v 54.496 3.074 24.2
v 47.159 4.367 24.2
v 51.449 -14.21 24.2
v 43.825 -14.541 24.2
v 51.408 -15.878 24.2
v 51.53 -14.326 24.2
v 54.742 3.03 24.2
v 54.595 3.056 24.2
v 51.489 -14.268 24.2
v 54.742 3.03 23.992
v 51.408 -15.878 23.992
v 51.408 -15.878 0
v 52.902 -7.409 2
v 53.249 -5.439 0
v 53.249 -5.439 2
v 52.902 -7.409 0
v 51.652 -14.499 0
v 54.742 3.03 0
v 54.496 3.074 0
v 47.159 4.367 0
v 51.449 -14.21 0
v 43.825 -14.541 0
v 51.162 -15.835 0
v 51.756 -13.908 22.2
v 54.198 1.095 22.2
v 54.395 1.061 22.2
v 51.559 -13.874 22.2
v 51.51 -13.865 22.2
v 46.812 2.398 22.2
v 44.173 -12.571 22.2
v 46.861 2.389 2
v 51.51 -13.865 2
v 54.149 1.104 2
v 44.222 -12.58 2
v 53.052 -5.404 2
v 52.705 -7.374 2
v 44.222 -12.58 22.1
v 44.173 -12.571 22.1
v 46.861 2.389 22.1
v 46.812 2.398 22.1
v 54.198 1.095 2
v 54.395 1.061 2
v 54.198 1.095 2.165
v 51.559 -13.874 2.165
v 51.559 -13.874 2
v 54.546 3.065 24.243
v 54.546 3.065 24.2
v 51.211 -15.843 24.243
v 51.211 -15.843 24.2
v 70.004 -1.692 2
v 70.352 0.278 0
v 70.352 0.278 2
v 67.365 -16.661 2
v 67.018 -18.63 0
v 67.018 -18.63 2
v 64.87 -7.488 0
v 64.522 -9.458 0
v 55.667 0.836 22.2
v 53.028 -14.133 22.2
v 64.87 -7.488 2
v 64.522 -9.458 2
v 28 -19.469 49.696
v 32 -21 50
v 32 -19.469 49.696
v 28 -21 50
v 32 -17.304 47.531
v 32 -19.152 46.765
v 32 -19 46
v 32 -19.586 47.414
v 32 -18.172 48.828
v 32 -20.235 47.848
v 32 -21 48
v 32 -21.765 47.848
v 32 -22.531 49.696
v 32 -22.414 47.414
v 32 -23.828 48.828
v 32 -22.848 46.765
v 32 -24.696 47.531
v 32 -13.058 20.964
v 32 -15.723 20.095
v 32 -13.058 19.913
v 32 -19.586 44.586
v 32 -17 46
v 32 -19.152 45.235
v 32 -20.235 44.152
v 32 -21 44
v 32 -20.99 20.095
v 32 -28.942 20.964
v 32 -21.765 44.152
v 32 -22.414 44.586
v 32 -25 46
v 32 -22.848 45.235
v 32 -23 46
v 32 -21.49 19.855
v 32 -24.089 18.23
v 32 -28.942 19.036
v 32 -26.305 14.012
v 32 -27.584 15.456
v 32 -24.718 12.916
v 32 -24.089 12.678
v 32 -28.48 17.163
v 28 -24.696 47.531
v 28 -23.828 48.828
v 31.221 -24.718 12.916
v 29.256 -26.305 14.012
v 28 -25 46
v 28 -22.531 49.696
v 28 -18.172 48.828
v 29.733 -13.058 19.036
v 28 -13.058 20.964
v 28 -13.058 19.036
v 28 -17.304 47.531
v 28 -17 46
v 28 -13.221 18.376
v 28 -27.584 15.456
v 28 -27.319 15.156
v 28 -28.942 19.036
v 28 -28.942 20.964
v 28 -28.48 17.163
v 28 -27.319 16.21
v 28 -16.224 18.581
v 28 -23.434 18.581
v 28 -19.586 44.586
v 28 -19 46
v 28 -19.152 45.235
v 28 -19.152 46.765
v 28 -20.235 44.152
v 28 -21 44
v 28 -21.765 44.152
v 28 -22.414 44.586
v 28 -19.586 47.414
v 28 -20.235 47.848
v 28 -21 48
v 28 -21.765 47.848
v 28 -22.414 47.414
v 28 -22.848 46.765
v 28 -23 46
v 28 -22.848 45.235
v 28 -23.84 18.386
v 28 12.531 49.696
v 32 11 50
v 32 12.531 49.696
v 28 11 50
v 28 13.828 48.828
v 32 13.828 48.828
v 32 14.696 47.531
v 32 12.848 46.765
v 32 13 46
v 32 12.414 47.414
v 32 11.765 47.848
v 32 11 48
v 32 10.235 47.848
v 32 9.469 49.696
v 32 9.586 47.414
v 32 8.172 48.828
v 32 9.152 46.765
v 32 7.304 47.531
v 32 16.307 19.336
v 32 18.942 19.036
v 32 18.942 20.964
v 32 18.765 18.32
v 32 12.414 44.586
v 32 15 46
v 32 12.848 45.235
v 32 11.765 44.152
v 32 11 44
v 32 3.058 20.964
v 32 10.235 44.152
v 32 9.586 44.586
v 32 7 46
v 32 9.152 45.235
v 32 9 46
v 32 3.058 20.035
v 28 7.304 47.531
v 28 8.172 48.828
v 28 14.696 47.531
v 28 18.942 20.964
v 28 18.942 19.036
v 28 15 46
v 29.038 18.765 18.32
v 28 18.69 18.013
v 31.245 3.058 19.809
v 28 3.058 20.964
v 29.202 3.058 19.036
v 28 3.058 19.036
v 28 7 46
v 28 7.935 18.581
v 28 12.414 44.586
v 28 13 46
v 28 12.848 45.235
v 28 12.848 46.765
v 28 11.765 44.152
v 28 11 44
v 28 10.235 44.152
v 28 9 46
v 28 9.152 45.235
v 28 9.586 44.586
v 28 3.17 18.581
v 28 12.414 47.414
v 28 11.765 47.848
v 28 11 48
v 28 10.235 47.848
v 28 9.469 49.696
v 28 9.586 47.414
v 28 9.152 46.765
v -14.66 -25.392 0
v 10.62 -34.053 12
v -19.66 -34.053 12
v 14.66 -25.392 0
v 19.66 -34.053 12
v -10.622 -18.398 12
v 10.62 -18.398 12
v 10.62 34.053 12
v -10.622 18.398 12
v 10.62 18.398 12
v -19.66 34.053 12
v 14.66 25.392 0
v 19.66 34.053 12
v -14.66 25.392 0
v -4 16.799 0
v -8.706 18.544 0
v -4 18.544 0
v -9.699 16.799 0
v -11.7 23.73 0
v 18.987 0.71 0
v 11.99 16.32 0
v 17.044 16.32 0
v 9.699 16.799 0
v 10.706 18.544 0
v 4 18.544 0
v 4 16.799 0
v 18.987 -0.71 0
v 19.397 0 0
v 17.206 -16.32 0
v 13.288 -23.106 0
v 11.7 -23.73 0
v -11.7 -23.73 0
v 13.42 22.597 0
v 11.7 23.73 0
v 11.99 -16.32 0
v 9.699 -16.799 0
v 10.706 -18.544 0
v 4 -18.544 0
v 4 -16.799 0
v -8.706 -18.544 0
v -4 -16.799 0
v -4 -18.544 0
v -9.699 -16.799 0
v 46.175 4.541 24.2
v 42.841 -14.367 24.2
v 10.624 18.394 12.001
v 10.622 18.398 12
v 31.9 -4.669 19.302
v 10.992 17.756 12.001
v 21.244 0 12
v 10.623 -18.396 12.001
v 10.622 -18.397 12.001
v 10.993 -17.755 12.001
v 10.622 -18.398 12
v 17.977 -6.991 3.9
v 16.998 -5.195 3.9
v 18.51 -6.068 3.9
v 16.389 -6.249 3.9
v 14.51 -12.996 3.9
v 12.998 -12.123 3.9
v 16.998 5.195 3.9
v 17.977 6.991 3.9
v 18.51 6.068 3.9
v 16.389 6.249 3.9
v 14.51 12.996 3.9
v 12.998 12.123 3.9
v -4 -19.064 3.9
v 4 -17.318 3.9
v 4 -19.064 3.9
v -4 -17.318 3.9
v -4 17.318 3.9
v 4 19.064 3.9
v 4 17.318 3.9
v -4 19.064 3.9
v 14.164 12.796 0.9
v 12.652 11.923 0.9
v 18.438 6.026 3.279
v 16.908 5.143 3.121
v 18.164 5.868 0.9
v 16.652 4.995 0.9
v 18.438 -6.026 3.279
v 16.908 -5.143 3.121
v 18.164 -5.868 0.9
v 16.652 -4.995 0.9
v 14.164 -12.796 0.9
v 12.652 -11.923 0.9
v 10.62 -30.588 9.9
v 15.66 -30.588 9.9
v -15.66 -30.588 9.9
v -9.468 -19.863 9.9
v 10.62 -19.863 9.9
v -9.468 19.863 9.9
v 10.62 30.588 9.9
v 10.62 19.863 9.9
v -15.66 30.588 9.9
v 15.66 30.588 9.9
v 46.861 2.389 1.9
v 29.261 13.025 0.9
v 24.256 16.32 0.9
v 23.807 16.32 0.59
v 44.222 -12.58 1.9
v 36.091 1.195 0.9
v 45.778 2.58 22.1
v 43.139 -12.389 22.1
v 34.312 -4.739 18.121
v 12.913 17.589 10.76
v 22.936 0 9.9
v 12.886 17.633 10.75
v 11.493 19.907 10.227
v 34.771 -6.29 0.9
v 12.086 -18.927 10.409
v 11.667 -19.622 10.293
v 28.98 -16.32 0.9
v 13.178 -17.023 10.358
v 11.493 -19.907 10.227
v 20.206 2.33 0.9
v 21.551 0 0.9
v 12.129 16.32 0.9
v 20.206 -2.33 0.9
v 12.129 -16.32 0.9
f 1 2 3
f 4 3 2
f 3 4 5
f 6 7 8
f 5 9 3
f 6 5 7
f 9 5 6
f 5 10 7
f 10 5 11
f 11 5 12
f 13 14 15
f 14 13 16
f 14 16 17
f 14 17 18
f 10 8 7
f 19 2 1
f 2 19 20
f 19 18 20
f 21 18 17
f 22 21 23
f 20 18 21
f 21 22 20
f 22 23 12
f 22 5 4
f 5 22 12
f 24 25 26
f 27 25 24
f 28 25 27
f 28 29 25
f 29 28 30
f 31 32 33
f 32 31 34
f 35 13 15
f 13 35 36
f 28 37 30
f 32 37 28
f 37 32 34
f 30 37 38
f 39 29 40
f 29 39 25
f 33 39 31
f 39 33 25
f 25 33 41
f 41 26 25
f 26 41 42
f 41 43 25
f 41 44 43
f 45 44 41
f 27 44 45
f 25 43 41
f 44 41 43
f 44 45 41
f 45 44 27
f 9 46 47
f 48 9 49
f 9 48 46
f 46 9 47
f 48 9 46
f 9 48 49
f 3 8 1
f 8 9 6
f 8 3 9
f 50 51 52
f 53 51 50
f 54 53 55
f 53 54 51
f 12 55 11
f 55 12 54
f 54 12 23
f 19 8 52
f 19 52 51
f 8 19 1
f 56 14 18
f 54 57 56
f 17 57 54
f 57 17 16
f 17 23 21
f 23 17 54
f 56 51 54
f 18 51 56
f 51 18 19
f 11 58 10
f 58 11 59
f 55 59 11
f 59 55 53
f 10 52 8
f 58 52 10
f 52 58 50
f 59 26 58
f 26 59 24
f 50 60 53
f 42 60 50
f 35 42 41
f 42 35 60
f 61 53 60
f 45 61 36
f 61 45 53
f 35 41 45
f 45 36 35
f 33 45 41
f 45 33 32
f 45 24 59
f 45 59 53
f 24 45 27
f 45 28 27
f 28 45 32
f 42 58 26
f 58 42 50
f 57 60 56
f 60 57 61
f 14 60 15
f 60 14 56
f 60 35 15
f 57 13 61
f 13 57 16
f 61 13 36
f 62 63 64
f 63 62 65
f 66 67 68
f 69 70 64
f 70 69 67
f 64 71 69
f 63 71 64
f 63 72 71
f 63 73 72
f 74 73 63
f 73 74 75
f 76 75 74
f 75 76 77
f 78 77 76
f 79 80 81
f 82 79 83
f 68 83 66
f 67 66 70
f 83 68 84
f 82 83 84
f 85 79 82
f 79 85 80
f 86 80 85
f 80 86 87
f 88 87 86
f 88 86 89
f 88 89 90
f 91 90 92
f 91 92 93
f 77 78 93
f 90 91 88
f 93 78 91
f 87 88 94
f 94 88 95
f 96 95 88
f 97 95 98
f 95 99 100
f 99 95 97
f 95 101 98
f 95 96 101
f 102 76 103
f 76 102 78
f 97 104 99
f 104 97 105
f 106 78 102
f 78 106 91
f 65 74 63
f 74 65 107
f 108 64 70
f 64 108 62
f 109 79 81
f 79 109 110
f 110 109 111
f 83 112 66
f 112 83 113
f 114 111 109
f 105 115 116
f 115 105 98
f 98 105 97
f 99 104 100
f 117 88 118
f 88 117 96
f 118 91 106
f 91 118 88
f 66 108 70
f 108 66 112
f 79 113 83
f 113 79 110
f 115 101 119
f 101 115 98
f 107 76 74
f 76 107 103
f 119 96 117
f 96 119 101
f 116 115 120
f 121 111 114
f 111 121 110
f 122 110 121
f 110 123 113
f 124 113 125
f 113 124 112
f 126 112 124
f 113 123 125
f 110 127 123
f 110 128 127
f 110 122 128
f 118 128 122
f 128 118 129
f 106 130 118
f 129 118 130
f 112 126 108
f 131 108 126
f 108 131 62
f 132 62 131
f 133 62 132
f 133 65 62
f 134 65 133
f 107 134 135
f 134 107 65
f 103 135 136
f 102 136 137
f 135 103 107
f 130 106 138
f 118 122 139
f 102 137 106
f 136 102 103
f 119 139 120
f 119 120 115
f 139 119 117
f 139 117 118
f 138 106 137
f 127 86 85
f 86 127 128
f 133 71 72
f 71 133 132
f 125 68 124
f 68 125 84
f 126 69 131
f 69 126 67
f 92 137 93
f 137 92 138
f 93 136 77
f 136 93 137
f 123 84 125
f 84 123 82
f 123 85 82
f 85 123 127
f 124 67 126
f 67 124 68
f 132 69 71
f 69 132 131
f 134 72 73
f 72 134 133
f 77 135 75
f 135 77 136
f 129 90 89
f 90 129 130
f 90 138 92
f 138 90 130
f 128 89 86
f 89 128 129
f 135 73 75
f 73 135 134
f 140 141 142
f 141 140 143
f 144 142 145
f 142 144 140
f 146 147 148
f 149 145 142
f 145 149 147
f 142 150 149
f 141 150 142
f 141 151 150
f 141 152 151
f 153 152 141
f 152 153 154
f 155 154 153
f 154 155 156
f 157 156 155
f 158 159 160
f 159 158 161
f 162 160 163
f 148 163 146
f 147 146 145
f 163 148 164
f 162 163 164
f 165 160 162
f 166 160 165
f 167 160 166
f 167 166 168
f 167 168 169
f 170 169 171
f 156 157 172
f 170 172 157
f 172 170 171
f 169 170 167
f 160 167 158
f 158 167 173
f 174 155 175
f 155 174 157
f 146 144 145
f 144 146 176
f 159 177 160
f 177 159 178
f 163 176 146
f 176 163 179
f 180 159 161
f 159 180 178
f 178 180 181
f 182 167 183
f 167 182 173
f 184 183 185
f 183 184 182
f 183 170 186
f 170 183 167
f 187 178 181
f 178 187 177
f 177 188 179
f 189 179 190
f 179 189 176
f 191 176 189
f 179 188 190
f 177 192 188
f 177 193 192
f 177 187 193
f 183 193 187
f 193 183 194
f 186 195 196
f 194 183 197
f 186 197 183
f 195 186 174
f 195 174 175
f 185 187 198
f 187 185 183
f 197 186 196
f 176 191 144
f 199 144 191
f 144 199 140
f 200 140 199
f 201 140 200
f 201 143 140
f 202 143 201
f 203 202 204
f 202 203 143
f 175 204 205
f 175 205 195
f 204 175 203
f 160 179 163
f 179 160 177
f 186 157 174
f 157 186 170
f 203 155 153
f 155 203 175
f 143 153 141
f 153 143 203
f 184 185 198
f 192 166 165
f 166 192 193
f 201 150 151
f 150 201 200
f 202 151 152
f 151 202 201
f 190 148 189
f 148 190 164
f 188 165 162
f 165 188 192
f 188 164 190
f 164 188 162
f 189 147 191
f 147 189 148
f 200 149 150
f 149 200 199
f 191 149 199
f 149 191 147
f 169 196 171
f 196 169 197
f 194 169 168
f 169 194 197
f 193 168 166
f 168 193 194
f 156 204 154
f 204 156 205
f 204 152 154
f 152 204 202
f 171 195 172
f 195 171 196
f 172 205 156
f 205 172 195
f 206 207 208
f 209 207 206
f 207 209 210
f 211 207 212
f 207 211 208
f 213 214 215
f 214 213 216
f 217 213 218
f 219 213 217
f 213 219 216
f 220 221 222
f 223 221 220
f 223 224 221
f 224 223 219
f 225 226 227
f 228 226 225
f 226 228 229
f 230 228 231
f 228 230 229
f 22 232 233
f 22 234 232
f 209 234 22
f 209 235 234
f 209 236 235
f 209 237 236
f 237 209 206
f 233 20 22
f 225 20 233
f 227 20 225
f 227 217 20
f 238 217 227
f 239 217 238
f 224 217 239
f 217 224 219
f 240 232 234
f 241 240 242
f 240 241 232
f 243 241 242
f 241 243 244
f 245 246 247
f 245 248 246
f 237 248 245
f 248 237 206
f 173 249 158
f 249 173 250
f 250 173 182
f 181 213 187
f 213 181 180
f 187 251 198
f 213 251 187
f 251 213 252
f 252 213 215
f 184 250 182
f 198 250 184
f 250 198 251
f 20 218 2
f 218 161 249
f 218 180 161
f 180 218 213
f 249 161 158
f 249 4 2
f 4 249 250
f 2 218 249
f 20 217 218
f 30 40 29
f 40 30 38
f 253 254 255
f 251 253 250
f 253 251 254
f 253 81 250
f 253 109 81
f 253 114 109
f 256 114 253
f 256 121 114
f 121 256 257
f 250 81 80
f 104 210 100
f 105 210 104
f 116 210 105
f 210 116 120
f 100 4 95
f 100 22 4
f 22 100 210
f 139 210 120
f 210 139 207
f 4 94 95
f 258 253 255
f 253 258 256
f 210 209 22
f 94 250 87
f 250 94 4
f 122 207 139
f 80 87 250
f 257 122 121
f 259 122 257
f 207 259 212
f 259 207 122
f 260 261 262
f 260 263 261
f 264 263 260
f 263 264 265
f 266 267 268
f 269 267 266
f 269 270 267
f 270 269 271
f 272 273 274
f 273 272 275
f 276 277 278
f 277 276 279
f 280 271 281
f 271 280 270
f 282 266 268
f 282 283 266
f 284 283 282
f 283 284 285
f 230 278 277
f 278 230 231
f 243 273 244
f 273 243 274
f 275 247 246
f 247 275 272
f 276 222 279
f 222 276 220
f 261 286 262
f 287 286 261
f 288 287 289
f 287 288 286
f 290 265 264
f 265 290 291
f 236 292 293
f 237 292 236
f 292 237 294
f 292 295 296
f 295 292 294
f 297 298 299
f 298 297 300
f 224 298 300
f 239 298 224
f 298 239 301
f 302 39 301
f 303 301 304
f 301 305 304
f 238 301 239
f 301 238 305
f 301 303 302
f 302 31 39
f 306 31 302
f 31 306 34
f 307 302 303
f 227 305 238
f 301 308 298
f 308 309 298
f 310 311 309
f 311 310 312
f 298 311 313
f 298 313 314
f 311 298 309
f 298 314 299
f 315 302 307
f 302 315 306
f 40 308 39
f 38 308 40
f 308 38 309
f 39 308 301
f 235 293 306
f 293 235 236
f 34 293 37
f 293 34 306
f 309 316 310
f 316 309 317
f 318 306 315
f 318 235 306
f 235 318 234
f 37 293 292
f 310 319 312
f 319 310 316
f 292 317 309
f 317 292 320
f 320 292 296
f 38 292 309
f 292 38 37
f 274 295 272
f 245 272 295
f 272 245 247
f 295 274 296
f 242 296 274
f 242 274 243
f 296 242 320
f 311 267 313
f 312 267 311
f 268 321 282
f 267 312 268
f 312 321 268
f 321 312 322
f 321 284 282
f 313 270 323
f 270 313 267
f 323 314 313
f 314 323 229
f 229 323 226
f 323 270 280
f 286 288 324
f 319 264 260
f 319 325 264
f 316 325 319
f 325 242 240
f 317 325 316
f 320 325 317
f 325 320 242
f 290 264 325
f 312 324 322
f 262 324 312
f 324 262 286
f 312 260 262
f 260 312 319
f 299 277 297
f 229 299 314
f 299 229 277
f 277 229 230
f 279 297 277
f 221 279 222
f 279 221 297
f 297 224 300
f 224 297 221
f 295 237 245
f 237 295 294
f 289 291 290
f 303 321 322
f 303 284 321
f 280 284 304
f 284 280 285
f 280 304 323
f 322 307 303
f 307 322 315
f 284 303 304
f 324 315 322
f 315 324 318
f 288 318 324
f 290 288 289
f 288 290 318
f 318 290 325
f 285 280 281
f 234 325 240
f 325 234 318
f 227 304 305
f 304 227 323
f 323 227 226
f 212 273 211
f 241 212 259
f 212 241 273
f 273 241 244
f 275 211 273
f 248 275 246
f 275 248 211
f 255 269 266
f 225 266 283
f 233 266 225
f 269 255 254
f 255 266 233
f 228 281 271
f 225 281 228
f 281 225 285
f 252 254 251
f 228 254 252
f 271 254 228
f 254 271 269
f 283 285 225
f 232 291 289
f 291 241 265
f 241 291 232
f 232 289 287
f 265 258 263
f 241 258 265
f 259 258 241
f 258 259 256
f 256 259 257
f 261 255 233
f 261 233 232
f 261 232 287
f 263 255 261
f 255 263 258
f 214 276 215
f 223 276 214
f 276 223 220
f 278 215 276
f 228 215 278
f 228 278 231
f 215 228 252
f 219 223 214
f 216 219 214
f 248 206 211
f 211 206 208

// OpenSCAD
hot_rad = 30/2/cos(30);
hotend_x=25;
fan_x = 15+5;

hotend_y=-5;

thickness = 10;
wall=2;
slop=.2;

fan_hole = (40-wall-wall)/2;
mount_drop = 10;
fan_z = fan_hole+wall;

//fan_mount();
fan_mount_blower();
//bowden_fan();
//translate([0,60,0]) cyclops_fan();

%cylinder(r=hot_rad, h=20, center=true);
%translate([-23,0,0]) cylinder(r=hot_rad, h=20, center=true);

m3_cap_rad = 4;
m3_rad = 2;
m3_nut_rad = 6.01/2+.1;

facets = 6;

duct_angle=-5;
duct_jut = -5;

module fan_mount(){
    difference(){
        union(){
            //core
            cylinder(r1=hot_rad+thickness+wall, r2=hot_rad+thickness*2+wall, h=thickness+wall, $fn=facets);
            
            hull(){
                intersection(){
                    difference(){
                        cylinder(r1=hot_rad+thickness+wall, r2=hot_rad+thickness*2+wall, h=thickness+wall, $fn=facets);
                        translate([0,0,-.5]) cylinder(r1=hot_rad+wall, r2=hot_rad+wall+wall, h=thickness+wall+1, $fn=facets);
                    }
                    translate([50+hot_rad-6.7,50,50]) cube([100,100,100], center=true);
                }
                translate([hotend_x+fan_x-5,hotend_y,fan_z]) rotate([0,90,0]) cylinder(r=fan_hole+wall, h=5);
            }
            
            hull(){
                intersection(){
                    difference(){
                        cylinder(r1=hot_rad+thickness+wall, r2=hot_rad+thickness*2+wall, h=thickness+wall, $fn=facets);
                        translate([0,0,-.5]) cylinder(r1=hot_rad+wall, r2=hot_rad+wall+wall, h=thickness+wall+1, $fn=facets);
                    }
                    translate([50+hot_rad-6.7,-50,50]) cube([100,100,100], center=true);
                }
                translate([hotend_x+fan_x-5,hotend_y,fan_z]) rotate([0,90,0]) cylinder(r=fan_hole+wall, h=5);
            }
            
            //fan mount
            translate([hotend_x+fan_x,hotend_y,fan_z]) rotate([0,90,0]){
                hull() for(i=[0:90:359]) rotate([0,0,i]) {
                    #translate([20-wall,20-wall,-wall]) cylinder(r=wall,h=wall*2, $fn=16);
                }    
            }
            
            //mounting lugs above fan
            #translate([hotend_x+fan_x,hotend_y,fan_z]) rotate([0,90,0]){
                for(i=[-16, 16]) difference(){
                    hull(){
                        translate([-16-mount_drop,i,-fan_x+3]) cylinder(r=m3_rad+wall, h=wall*2, $fn=16);
                        translate([0,i,-fan_x+3]) cylinder(r=m3_cap_rad*2, h=wall);
                    }
                    translate([-16-mount_drop,i,-fan_x+3-.1]) cylinder(r=m3_rad, h=wall*2+1, $fn=16);
                }
            }
        }
        
        //center cutout
        translate([0,0,-.5]) cylinder(r1=hot_rad+wall, r2=hot_rad+wall+wall, h=thickness+wall+1, $fn=facets);
                
        //front cutout
        translate([-(hot_rad+thickness*2+wall),0,0]) cylinder(r=hot_rad+thickness*2+wall, h=thickness+wall*10, center=true, $fn=facets);
        
        //fan holes
        translate([hotend_x+fan_x,hotend_y,fan_z]) rotate([0,90,0]){
            for(i=[-16, 16]) for(j=[-16, 16]) {
                #translate([j,i,-.1]) cylinder(r=m3_rad, h=wall+.2, $fn=16);
                translate([j,i,-wall*2-.1]) cylinder(r2=m3_nut_rad, r1=m3_nut_rad+.25, h=wall*2+.2, $fn=6);
            }
        }
        
        //air path
        translate([0,0,-.1]) difference(){
            union(){
                translate([-wall,0,0]) cylinder(r1=hot_rad+thickness, r2=hot_rad+thickness*2-wall, h=thickness, $fn=facets);
                
                hull(){
                    intersection(){
                        difference(){
                            translate([-wall,0,0]) cylinder(r1=hot_rad+thickness, r2=hot_rad+thickness*2-wall, h=thickness, $fn=facets);
                            translate([0,0,-.5]) cylinder(r1=hot_rad+wall*2, r2=hot_rad+wall*3, h=thickness+wall+1, $fn=facets);
                        }
                        translate([50+hot_rad-6.7,50,50]) cube([100,100,100], center=true);
                    }
                    translate([hotend_x+fan_x-5,hotend_y,fan_z]) rotate([0,90,0]) cylinder(r=fan_hole, h=.3);
                }
                
                hull(){
                    intersection(){
                        difference(){
                            translate([-wall,0,0]) cylinder(r1=hot_rad+thickness, r2=hot_rad+thickness*2-wall, h=thickness, $fn=facets);
                            translate([0,0,-.5]) cylinder(r1=hot_rad+wall+wall, r2=hot_rad+wall+wall+wall, h=thickness+wall+1, $fn=facets);
                        }
                        translate([50+hot_rad-6.7,-50,50]) cube([100,100,100], center=true);
                    }
                    translate([hotend_x+fan_x-5,hotend_y,fan_z]) rotate([0,90,0]) cylinder(r=fan_hole, h=.3);
                }
                
                translate([hotend_x+fan_x-5,hotend_y,fan_z]) rotate([0,90,0]) cylinder(r=fan_hole, h=wall+1+5);
            }
            cylinder(r1=hot_rad+wall+wall, r2=hot_rad+wall+wall+wall, h=thickness+wall, $fn=facets);
            translate([-(hot_rad+thickness*2),0,0]) cylinder(r=hot_rad+thickness*2+wall, h=thickness+wall*10, center=true, $fn=facets);
            translate([0,-5+hotend_y/2,0])cube([100,10,wall]);
        }
    }
}

module bowden_fan(){
    duct_w = 15+slop;
    duct_h = 20+slop;
    duct_offset=38;
    
    mount_height = 46;
    
    offset = -20;
    difference(){
        union(){
            //core
            hull(){
                cylinder(r1=hot_rad+thickness+wall, r2=hot_rad+thickness*2+wall, h=thickness+wall, $fn=facets);
                translate([offset,0,0]) cylinder(r1=hot_rad+thickness+wall, r2=hot_rad+thickness*2+wall, h=thickness+wall, $fn=facets);
            }
            
            //connection to duct
            hull(){
                intersection(){
                    cylinder(r1=hot_rad+thickness+wall, r2=hot_rad+thickness*2+wall, h=thickness+wall, $fn=facets);
                    translate([hot_rad+wall*2,0,0]) cube([1,200,200], center=true);
                }
                translate([duct_offset,duct_jut,duct_h/2+wall]) rotate([0,0,duct_angle]) cube([1,duct_w+wall*2, duct_h+wall*2], center=true);
            }
            
            //the duct connector
            translate([duct_offset,duct_jut,0]) rotate([0,0,duct_angle]) duct();
            
            //mounting lugs
           for(i=[10,-20,-40]) difference(){
                translate([i,hot_rad+wall*2,0]) hull(){
                    translate([5,0,thickness]) rotate([90,0,0]) cylinder(r=m3_cap_rad+wall*2, h=wall, center=true);
                    translate([0,0,mount_height]) rotate([90,0,0]) cylinder(r=m3_cap_rad+wall, h=wall, center=true);
                }
                
                //mounting holes up top
                translate([i,hot_rad+wall*2,mount_height]) rotate([90,0,0]) cylinder(r=m3_rad+slop, h=20, center=true);
            }
        }
        
        //connection to duct airflow
        hull(){
            intersection(){
                translate([0,0,wall]) cylinder(r1=hot_rad+thickness, r2=hot_rad+thickness*2, h=thickness-wall, $fn=facets);
                translate([hot_rad+wall*3,0,0]) cube([1,200,200], center=true);
            }
            translate([duct_offset,duct_jut,duct_h/2+wall]) rotate([0,0,duct_angle]) cube([1.2,duct_w, duct_h], center=true);
        }
        
        //center cutout
        translate([0,0,-.5]) hull(){
            cylinder(r1=hot_rad+wall, r2=hot_rad+wall*3, h=thickness+wall+1, $fn=facets);
            translate([2*offset,0,0]) cylinder(r1=hot_rad+wall, r2=hot_rad+wall*3, h=thickness+wall+1, $fn=facets);
        }
        
        //air path
        difference(){
            //core
            translate([0,0,-.1]) hull(){
                cylinder(r1=hot_rad+thickness, r2=hot_rad+thickness*2-wall, h=thickness, $fn=facets);
                translate([offset+wall,0,0]) cylinder(r1=hot_rad+thickness, r2=hot_rad+thickness*2-wall, h=thickness, $fn=facets);
            }
            
            //keep the center walls in place
            translate([0,0,-.5]) hull(){
                cylinder(r1=hot_rad+wall*2, r2=hot_rad+wall*4, h=thickness+wall+1, $fn=facets);
                translate([2*offset,0,0]) cylinder(r1=hot_rad+wall*2, r2=hot_rad+wall*4, h=thickness+wall+1, $fn=facets);
            }
            
            //bottom on the near side
            translate([10,0,-.5]) cylinder(r1=hot_rad+wall*2, r2=hot_rad+wall*2.5, h=wall+.5, $fn=facets);
        }
    }
}

module cyclops_fan(){
    duct_w = 15+slop;
    duct_h = 20+slop;
    duct_offset=38;
    
    mount_height = 46-1.5;
    mount_offset = 10;
    
    offset = -11;
    difference(){
        union(){
            //core
            hull(){
                cylinder(r1=hot_rad+thickness+wall, r2=hot_rad+thickness*2+wall, h=thickness+wall, $fn=facets);
                translate([offset,0,0]) cylinder(r1=hot_rad+thickness+wall, r2=hot_rad+thickness*2+wall, h=thickness+wall, $fn=facets);
            }
            
            //connection to duct
            #hull(){
                intersection(){
                    cylinder(r1=hot_rad+thickness+wall, r2=hot_rad+thickness*2+wall, h=thickness+wall, $fn=facets);
                    translate([hot_rad+wall*2,0,0]) cube([1,200,200], center=true);
                }
                translate([duct_offset,duct_jut,duct_h/2+wall]) rotate([0,0,duct_angle]) cube([1,duct_w+wall*2, duct_h+wall*2], center=true);
            }
            
            //the duct connector
            translate([duct_offset,duct_jut,0]) rotate([0,0,duct_angle]) duct();
            
            //mounting lugs
           for(i=[10-mount_offset,-20-mount_offset]) difference(){
                translate([i,hot_rad+wall*2,0]) hull(){
                    translate([5,0,thickness]) rotate([90,0,0]) cylinder(r=m3_cap_rad+wall*2, h=wall, center=true);
                    translate([0,0,mount_height]) rotate([90,0,0]) cylinder(r=m3_cap_rad+wall, h=wall, center=true);
                }
                
                //mounting holes up top
                translate([i,hot_rad+wall*2,mount_height]) rotate([90,0,0]) cylinder(r=m3_rad+slop, h=20, center=true);
            }
        }
        
        //connection to duct airflow
        hull(){
            intersection(){
                translate([0,0,wall]) cylinder(r1=hot_rad+thickness, r2=hot_rad+thickness*2, h=thickness-wall, $fn=facets);
                translate([hot_rad+wall*3,0,0]) cube([1,200,200], center=true);
            }
            translate([duct_offset,duct_jut,duct_h/2+wall]) rotate([0,0,duct_angle]) cube([1.2,duct_w, duct_h], center=true);
        }
        
        //center cutout
        translate([0,0,-.5]) hull(){
            cylinder(r1=hot_rad+wall, r2=hot_rad+wall*3, h=thickness+wall+1, $fn=facets);
            translate([5*offset,0,0]) cylinder(r1=hot_rad+wall, r2=hot_rad+wall*3, h=thickness+wall+1, $fn=facets);
        }
        
        //air path
        difference(){
            //core
            translate([0,0,-.1]) hull(){
                cylinder(r1=hot_rad+thickness, r2=hot_rad+thickness*2-wall, h=thickness, $fn=facets);
                translate([offset+wall,0,0]) cylinder(r1=hot_rad+thickness, r2=hot_rad+thickness*2-wall, h=thickness, $fn=facets);
            }
            
            //keep the center walls in place
            translate([0,0,-.5]) hull(){
                cylinder(r1=hot_rad+wall*2, r2=hot_rad+wall*4, h=thickness+wall+1, $fn=facets);
                translate([5*offset,0,0]) cylinder(r1=hot_rad+wall*2, r2=hot_rad+wall*4, h=thickness+wall+1, $fn=facets);
            }
            
            //bottom on the near side
            translate([10,0,-.5]) cylinder(r1=hot_rad+wall*2, r2=hot_rad+wall*2.5, h=wall+.5, $fn=facets);
        }
    }
}

module fan_mount_blower(){
    duct_w = 15+slop;
    duct_h = 20+slop;
    //duct_offset=38;
    
    duct_jut = -5;
    duct_angle = -10;
    duct_extend = 8;
    fan_x = 15+5+10+10+5;
    
    difference(){
        union(){
            //core
            cylinder(r1=hot_rad+thickness+wall, r2=hot_rad+thickness*2+wall, h=thickness+wall, $fn=facets);
            
            //rear duct transition
            hull(){
                intersection(){
                    difference(){
                        cylinder(r1=hot_rad+thickness+wall, r2=hot_rad+thickness*2+wall, h=thickness+wall, $fn=facets);
                        translate([0,0,-.5]) cylinder(r1=hot_rad+wall, r2=hot_rad+wall+wall, h=thickness+wall+1, $fn=facets);
                    }
                    translate([50+hot_rad-6.7,50,50]) cube([100,100,100], center=true);
                }
                
                //this is the duct!
                translate([fan_x,duct_jut,duct_h/2+wall]) rotate([0,0,duct_angle]) cube([1,duct_w+wall*2, duct_h+wall*2], center=true);
            }
            
            //front duct transition
            hull(){
                intersection(){
                    difference(){
                        cylinder(r1=hot_rad+thickness+wall, r2=hot_rad+thickness*2+wall, h=thickness+wall, $fn=facets);
                        translate([0,0,-.5]) cylinder(r1=hot_rad+wall, r2=hot_rad+wall+wall, h=thickness+wall+1, $fn=facets);
                    }
                    translate([50+hot_rad-6.7,-50,50]) cube([100,100,100], center=true);
                }
                //this is the duct!
                translate([fan_x,duct_jut,duct_h/2+wall]) rotate([0,0,duct_angle]) cube([1,duct_w+wall*2, duct_h+wall*2], center=true);
            }
            
            //the duct connector
            translate([fan_x,duct_jut,0]) rotate([0,0,duct_angle]) {
                translate([duct_extend/2,0,duct_h/2+wall]) difference(){
                    cube([duct_extend*1.05, duct_w+wall*2, duct_h+wall*2], center=true);
                    cube([duct_extend*1.1, duct_w, duct_h], center=true);
                }
                translate([duct_extend,0,0]) duct_angle(angle=0);
            }
            
            //mounting lugs above fan
            translate([hotend_x+fan_x,hotend_y,fan_z]) rotate([0,90,0]){
                for(i=[-16, 16]) difference(){
                    hull(){
                        translate([-16-mount_drop,i,-fan_x+3]) cylinder(r=m3_rad+wall, h=wall*2, $fn=16);
                        translate([0,i,-fan_x+3]) cylinder(r=m3_cap_rad*2, h=wall*2);
                    }
                    translate([-16-mount_drop,i,-fan_x+3-.1]) cylinder(r=m3_rad, h=wall*2+1, $fn=16);
                }
            }
        }
        
        //center cutout
        translate([0,0,-.5]) cylinder(r1=hot_rad+wall, r2=hot_rad+wall+wall, h=thickness+wall+1, $fn=facets);
                
        //front cutout
        translate([-(hot_rad+thickness*2+wall),0,0]) cylinder(r=hot_rad+thickness*2+wall, h=thickness+wall*10, center=true, $fn=facets);
        
        //air path
        translate([0,0,-.1]) difference(){
            union(){
                translate([-wall,0,0]) cylinder(r1=hot_rad+thickness, r2=hot_rad+thickness*2-wall, h=thickness, $fn=facets);
                
                hull(){
                    intersection(){
                        difference(){
                            translate([-wall,0,0]) cylinder(r1=hot_rad+thickness, r2=hot_rad+thickness*2-wall, h=thickness, $fn=facets);
                            translate([0,0,-.5]) cylinder(r1=hot_rad+wall*2, r2=hot_rad+wall*3, h=thickness+wall+1, $fn=facets);
                        }
                        translate([50+hot_rad-6.7,50,50]) cube([100,100,100], center=true);
                    }
                    
                    //this is the duct!
                    translate([fan_x,duct_jut,duct_h/2+wall]) rotate([0,0,duct_angle]) cube([1.1,duct_w, duct_h], center=true);
                }
                
                hull(){
                    intersection(){
                        difference(){
                            translate([-wall,0,0]) cylinder(r1=hot_rad+thickness, r2=hot_rad+thickness*2-wall, h=thickness, $fn=facets);
                            translate([0,0,-.5]) cylinder(r1=hot_rad+wall*2, r2=hot_rad+wall*3, h=thickness+wall+1, $fn=facets);
                        }
                        translate([50+hot_rad-6.7,-50,50]) cube([100,100,100], center=true);
                    }
                    
                    //this is the duct!
                    translate([fan_x,duct_jut,duct_h/2+wall]) rotate([0,0,duct_angle]) cube([1.1,duct_w, duct_h], center=true);
                }
                
                //translate([hotend_x+fan_x-5,hotend_y,fan_z]) rotate([0,90,0]) cylinder(r=fan_hole, h=wall+1+5);
            }
            
            //cylinder(r1=hot_rad+wall+wall, r2=hot_rad+wall+wall+wall, h=thickness+wall, $fn=facets);
            difference(){
                                translate([0,0,-.5]) cylinder(r1=hot_rad+wall+wall, r2=hot_rad+wall+wall+wall, h=thickness+wall+1, $fn=facets);
                                //this adds some holes to direct air straight into the hotend
                                for(i=[30:360/6:179]) rotate([0,0,i]) {
                                    cube([100,8,8],center=true);
                                }
                            }
                            
            translate([-(hot_rad+thickness*2),0,0]) cylinder(r=hot_rad+thickness*2+wall, h=thickness+wall*10, center=true, $fn=facets);
            //an extra tongue for strength
            translate([0,0,0])cube([100,hot_rad*2-wall,wall], center=true);
        }
    }
}

module duct(){
    duct_w = 15+slop;
    duct_h = 20+slop;
    rad = 20;
    
    translate([0,0,rad+wall+duct_h/2]) rotate([-90,0,0]) union(){
        intersection(){
            rotate_extrude(angle = 90, convexity = 2){
                translate([rad,0,0])
                difference(){
                    square([duct_h+wall*2, duct_w+wall*2], center=true);
                    square([duct_h, duct_w], center=true);
                }
            }
            translate([0,0,-100]) cube([200,200,200]);
        }
        
        translate([rad,0,0]) rotate([90,0,0]) translate([0,0,8]) difference(){
            hull(){
                translate([0,0,-8]) cube([duct_h+wall*2,duct_w+wall*2,.1], center=true);
                #translate([duct_h/2+wall/2,0,8]) cube([wall,duct_w+wall*2,.1], center=true);
            }
            
            //hollow center
            cube([duct_h,duct_w,16.3], center=true);
            
            //slot for the clip
            translate([wall+1,0,(12-16)/2]) cube([duct_h+wall*2,2,12], center=true);
        }
        
    }
}

module duct_angle(angle=30){
    duct_w = 15+slop;
    duct_h = 20+slop;
    rad = 20;
    
    translate([0,0,rad+wall+duct_h/2]) rotate([-90,0,0]) union(){
        intersection(){
            rotate_extrude(angle = 45, convexity = 2){
                translate([rad,0,0])
                difference(){
                    square([duct_h+wall*2, duct_w+wall*2], center=true);
                    square([duct_h, duct_w], center=true);
                }
            }
            translate([0,0,-100]) cube([200,200,200]);
            translate([0,0,-100]) rotate([0,0,90-angle]) cube([200,200,200]);
        }
        
        rotate([0,0,90-angle]) translate([rad,0,0]) rotate([90,0,0]) translate([0,0,8]) difference(){
            hull(){
                translate([0,0,-8]) cube([duct_h+wall*2,duct_w+wall*2,.1], center=true);
                translate([duct_h/2+wall/2,0,8]) cube([wall,duct_w+wall*2,.1], center=true);
            }
            
            //hollow center
            cube([duct_h,duct_w,16.3], center=true);
            
            //slot for the clip
            translate([wall+1,0,(12-16)/2]) cube([duct_h+wall*2,2,12], center=true);
        }
        
    }
}
